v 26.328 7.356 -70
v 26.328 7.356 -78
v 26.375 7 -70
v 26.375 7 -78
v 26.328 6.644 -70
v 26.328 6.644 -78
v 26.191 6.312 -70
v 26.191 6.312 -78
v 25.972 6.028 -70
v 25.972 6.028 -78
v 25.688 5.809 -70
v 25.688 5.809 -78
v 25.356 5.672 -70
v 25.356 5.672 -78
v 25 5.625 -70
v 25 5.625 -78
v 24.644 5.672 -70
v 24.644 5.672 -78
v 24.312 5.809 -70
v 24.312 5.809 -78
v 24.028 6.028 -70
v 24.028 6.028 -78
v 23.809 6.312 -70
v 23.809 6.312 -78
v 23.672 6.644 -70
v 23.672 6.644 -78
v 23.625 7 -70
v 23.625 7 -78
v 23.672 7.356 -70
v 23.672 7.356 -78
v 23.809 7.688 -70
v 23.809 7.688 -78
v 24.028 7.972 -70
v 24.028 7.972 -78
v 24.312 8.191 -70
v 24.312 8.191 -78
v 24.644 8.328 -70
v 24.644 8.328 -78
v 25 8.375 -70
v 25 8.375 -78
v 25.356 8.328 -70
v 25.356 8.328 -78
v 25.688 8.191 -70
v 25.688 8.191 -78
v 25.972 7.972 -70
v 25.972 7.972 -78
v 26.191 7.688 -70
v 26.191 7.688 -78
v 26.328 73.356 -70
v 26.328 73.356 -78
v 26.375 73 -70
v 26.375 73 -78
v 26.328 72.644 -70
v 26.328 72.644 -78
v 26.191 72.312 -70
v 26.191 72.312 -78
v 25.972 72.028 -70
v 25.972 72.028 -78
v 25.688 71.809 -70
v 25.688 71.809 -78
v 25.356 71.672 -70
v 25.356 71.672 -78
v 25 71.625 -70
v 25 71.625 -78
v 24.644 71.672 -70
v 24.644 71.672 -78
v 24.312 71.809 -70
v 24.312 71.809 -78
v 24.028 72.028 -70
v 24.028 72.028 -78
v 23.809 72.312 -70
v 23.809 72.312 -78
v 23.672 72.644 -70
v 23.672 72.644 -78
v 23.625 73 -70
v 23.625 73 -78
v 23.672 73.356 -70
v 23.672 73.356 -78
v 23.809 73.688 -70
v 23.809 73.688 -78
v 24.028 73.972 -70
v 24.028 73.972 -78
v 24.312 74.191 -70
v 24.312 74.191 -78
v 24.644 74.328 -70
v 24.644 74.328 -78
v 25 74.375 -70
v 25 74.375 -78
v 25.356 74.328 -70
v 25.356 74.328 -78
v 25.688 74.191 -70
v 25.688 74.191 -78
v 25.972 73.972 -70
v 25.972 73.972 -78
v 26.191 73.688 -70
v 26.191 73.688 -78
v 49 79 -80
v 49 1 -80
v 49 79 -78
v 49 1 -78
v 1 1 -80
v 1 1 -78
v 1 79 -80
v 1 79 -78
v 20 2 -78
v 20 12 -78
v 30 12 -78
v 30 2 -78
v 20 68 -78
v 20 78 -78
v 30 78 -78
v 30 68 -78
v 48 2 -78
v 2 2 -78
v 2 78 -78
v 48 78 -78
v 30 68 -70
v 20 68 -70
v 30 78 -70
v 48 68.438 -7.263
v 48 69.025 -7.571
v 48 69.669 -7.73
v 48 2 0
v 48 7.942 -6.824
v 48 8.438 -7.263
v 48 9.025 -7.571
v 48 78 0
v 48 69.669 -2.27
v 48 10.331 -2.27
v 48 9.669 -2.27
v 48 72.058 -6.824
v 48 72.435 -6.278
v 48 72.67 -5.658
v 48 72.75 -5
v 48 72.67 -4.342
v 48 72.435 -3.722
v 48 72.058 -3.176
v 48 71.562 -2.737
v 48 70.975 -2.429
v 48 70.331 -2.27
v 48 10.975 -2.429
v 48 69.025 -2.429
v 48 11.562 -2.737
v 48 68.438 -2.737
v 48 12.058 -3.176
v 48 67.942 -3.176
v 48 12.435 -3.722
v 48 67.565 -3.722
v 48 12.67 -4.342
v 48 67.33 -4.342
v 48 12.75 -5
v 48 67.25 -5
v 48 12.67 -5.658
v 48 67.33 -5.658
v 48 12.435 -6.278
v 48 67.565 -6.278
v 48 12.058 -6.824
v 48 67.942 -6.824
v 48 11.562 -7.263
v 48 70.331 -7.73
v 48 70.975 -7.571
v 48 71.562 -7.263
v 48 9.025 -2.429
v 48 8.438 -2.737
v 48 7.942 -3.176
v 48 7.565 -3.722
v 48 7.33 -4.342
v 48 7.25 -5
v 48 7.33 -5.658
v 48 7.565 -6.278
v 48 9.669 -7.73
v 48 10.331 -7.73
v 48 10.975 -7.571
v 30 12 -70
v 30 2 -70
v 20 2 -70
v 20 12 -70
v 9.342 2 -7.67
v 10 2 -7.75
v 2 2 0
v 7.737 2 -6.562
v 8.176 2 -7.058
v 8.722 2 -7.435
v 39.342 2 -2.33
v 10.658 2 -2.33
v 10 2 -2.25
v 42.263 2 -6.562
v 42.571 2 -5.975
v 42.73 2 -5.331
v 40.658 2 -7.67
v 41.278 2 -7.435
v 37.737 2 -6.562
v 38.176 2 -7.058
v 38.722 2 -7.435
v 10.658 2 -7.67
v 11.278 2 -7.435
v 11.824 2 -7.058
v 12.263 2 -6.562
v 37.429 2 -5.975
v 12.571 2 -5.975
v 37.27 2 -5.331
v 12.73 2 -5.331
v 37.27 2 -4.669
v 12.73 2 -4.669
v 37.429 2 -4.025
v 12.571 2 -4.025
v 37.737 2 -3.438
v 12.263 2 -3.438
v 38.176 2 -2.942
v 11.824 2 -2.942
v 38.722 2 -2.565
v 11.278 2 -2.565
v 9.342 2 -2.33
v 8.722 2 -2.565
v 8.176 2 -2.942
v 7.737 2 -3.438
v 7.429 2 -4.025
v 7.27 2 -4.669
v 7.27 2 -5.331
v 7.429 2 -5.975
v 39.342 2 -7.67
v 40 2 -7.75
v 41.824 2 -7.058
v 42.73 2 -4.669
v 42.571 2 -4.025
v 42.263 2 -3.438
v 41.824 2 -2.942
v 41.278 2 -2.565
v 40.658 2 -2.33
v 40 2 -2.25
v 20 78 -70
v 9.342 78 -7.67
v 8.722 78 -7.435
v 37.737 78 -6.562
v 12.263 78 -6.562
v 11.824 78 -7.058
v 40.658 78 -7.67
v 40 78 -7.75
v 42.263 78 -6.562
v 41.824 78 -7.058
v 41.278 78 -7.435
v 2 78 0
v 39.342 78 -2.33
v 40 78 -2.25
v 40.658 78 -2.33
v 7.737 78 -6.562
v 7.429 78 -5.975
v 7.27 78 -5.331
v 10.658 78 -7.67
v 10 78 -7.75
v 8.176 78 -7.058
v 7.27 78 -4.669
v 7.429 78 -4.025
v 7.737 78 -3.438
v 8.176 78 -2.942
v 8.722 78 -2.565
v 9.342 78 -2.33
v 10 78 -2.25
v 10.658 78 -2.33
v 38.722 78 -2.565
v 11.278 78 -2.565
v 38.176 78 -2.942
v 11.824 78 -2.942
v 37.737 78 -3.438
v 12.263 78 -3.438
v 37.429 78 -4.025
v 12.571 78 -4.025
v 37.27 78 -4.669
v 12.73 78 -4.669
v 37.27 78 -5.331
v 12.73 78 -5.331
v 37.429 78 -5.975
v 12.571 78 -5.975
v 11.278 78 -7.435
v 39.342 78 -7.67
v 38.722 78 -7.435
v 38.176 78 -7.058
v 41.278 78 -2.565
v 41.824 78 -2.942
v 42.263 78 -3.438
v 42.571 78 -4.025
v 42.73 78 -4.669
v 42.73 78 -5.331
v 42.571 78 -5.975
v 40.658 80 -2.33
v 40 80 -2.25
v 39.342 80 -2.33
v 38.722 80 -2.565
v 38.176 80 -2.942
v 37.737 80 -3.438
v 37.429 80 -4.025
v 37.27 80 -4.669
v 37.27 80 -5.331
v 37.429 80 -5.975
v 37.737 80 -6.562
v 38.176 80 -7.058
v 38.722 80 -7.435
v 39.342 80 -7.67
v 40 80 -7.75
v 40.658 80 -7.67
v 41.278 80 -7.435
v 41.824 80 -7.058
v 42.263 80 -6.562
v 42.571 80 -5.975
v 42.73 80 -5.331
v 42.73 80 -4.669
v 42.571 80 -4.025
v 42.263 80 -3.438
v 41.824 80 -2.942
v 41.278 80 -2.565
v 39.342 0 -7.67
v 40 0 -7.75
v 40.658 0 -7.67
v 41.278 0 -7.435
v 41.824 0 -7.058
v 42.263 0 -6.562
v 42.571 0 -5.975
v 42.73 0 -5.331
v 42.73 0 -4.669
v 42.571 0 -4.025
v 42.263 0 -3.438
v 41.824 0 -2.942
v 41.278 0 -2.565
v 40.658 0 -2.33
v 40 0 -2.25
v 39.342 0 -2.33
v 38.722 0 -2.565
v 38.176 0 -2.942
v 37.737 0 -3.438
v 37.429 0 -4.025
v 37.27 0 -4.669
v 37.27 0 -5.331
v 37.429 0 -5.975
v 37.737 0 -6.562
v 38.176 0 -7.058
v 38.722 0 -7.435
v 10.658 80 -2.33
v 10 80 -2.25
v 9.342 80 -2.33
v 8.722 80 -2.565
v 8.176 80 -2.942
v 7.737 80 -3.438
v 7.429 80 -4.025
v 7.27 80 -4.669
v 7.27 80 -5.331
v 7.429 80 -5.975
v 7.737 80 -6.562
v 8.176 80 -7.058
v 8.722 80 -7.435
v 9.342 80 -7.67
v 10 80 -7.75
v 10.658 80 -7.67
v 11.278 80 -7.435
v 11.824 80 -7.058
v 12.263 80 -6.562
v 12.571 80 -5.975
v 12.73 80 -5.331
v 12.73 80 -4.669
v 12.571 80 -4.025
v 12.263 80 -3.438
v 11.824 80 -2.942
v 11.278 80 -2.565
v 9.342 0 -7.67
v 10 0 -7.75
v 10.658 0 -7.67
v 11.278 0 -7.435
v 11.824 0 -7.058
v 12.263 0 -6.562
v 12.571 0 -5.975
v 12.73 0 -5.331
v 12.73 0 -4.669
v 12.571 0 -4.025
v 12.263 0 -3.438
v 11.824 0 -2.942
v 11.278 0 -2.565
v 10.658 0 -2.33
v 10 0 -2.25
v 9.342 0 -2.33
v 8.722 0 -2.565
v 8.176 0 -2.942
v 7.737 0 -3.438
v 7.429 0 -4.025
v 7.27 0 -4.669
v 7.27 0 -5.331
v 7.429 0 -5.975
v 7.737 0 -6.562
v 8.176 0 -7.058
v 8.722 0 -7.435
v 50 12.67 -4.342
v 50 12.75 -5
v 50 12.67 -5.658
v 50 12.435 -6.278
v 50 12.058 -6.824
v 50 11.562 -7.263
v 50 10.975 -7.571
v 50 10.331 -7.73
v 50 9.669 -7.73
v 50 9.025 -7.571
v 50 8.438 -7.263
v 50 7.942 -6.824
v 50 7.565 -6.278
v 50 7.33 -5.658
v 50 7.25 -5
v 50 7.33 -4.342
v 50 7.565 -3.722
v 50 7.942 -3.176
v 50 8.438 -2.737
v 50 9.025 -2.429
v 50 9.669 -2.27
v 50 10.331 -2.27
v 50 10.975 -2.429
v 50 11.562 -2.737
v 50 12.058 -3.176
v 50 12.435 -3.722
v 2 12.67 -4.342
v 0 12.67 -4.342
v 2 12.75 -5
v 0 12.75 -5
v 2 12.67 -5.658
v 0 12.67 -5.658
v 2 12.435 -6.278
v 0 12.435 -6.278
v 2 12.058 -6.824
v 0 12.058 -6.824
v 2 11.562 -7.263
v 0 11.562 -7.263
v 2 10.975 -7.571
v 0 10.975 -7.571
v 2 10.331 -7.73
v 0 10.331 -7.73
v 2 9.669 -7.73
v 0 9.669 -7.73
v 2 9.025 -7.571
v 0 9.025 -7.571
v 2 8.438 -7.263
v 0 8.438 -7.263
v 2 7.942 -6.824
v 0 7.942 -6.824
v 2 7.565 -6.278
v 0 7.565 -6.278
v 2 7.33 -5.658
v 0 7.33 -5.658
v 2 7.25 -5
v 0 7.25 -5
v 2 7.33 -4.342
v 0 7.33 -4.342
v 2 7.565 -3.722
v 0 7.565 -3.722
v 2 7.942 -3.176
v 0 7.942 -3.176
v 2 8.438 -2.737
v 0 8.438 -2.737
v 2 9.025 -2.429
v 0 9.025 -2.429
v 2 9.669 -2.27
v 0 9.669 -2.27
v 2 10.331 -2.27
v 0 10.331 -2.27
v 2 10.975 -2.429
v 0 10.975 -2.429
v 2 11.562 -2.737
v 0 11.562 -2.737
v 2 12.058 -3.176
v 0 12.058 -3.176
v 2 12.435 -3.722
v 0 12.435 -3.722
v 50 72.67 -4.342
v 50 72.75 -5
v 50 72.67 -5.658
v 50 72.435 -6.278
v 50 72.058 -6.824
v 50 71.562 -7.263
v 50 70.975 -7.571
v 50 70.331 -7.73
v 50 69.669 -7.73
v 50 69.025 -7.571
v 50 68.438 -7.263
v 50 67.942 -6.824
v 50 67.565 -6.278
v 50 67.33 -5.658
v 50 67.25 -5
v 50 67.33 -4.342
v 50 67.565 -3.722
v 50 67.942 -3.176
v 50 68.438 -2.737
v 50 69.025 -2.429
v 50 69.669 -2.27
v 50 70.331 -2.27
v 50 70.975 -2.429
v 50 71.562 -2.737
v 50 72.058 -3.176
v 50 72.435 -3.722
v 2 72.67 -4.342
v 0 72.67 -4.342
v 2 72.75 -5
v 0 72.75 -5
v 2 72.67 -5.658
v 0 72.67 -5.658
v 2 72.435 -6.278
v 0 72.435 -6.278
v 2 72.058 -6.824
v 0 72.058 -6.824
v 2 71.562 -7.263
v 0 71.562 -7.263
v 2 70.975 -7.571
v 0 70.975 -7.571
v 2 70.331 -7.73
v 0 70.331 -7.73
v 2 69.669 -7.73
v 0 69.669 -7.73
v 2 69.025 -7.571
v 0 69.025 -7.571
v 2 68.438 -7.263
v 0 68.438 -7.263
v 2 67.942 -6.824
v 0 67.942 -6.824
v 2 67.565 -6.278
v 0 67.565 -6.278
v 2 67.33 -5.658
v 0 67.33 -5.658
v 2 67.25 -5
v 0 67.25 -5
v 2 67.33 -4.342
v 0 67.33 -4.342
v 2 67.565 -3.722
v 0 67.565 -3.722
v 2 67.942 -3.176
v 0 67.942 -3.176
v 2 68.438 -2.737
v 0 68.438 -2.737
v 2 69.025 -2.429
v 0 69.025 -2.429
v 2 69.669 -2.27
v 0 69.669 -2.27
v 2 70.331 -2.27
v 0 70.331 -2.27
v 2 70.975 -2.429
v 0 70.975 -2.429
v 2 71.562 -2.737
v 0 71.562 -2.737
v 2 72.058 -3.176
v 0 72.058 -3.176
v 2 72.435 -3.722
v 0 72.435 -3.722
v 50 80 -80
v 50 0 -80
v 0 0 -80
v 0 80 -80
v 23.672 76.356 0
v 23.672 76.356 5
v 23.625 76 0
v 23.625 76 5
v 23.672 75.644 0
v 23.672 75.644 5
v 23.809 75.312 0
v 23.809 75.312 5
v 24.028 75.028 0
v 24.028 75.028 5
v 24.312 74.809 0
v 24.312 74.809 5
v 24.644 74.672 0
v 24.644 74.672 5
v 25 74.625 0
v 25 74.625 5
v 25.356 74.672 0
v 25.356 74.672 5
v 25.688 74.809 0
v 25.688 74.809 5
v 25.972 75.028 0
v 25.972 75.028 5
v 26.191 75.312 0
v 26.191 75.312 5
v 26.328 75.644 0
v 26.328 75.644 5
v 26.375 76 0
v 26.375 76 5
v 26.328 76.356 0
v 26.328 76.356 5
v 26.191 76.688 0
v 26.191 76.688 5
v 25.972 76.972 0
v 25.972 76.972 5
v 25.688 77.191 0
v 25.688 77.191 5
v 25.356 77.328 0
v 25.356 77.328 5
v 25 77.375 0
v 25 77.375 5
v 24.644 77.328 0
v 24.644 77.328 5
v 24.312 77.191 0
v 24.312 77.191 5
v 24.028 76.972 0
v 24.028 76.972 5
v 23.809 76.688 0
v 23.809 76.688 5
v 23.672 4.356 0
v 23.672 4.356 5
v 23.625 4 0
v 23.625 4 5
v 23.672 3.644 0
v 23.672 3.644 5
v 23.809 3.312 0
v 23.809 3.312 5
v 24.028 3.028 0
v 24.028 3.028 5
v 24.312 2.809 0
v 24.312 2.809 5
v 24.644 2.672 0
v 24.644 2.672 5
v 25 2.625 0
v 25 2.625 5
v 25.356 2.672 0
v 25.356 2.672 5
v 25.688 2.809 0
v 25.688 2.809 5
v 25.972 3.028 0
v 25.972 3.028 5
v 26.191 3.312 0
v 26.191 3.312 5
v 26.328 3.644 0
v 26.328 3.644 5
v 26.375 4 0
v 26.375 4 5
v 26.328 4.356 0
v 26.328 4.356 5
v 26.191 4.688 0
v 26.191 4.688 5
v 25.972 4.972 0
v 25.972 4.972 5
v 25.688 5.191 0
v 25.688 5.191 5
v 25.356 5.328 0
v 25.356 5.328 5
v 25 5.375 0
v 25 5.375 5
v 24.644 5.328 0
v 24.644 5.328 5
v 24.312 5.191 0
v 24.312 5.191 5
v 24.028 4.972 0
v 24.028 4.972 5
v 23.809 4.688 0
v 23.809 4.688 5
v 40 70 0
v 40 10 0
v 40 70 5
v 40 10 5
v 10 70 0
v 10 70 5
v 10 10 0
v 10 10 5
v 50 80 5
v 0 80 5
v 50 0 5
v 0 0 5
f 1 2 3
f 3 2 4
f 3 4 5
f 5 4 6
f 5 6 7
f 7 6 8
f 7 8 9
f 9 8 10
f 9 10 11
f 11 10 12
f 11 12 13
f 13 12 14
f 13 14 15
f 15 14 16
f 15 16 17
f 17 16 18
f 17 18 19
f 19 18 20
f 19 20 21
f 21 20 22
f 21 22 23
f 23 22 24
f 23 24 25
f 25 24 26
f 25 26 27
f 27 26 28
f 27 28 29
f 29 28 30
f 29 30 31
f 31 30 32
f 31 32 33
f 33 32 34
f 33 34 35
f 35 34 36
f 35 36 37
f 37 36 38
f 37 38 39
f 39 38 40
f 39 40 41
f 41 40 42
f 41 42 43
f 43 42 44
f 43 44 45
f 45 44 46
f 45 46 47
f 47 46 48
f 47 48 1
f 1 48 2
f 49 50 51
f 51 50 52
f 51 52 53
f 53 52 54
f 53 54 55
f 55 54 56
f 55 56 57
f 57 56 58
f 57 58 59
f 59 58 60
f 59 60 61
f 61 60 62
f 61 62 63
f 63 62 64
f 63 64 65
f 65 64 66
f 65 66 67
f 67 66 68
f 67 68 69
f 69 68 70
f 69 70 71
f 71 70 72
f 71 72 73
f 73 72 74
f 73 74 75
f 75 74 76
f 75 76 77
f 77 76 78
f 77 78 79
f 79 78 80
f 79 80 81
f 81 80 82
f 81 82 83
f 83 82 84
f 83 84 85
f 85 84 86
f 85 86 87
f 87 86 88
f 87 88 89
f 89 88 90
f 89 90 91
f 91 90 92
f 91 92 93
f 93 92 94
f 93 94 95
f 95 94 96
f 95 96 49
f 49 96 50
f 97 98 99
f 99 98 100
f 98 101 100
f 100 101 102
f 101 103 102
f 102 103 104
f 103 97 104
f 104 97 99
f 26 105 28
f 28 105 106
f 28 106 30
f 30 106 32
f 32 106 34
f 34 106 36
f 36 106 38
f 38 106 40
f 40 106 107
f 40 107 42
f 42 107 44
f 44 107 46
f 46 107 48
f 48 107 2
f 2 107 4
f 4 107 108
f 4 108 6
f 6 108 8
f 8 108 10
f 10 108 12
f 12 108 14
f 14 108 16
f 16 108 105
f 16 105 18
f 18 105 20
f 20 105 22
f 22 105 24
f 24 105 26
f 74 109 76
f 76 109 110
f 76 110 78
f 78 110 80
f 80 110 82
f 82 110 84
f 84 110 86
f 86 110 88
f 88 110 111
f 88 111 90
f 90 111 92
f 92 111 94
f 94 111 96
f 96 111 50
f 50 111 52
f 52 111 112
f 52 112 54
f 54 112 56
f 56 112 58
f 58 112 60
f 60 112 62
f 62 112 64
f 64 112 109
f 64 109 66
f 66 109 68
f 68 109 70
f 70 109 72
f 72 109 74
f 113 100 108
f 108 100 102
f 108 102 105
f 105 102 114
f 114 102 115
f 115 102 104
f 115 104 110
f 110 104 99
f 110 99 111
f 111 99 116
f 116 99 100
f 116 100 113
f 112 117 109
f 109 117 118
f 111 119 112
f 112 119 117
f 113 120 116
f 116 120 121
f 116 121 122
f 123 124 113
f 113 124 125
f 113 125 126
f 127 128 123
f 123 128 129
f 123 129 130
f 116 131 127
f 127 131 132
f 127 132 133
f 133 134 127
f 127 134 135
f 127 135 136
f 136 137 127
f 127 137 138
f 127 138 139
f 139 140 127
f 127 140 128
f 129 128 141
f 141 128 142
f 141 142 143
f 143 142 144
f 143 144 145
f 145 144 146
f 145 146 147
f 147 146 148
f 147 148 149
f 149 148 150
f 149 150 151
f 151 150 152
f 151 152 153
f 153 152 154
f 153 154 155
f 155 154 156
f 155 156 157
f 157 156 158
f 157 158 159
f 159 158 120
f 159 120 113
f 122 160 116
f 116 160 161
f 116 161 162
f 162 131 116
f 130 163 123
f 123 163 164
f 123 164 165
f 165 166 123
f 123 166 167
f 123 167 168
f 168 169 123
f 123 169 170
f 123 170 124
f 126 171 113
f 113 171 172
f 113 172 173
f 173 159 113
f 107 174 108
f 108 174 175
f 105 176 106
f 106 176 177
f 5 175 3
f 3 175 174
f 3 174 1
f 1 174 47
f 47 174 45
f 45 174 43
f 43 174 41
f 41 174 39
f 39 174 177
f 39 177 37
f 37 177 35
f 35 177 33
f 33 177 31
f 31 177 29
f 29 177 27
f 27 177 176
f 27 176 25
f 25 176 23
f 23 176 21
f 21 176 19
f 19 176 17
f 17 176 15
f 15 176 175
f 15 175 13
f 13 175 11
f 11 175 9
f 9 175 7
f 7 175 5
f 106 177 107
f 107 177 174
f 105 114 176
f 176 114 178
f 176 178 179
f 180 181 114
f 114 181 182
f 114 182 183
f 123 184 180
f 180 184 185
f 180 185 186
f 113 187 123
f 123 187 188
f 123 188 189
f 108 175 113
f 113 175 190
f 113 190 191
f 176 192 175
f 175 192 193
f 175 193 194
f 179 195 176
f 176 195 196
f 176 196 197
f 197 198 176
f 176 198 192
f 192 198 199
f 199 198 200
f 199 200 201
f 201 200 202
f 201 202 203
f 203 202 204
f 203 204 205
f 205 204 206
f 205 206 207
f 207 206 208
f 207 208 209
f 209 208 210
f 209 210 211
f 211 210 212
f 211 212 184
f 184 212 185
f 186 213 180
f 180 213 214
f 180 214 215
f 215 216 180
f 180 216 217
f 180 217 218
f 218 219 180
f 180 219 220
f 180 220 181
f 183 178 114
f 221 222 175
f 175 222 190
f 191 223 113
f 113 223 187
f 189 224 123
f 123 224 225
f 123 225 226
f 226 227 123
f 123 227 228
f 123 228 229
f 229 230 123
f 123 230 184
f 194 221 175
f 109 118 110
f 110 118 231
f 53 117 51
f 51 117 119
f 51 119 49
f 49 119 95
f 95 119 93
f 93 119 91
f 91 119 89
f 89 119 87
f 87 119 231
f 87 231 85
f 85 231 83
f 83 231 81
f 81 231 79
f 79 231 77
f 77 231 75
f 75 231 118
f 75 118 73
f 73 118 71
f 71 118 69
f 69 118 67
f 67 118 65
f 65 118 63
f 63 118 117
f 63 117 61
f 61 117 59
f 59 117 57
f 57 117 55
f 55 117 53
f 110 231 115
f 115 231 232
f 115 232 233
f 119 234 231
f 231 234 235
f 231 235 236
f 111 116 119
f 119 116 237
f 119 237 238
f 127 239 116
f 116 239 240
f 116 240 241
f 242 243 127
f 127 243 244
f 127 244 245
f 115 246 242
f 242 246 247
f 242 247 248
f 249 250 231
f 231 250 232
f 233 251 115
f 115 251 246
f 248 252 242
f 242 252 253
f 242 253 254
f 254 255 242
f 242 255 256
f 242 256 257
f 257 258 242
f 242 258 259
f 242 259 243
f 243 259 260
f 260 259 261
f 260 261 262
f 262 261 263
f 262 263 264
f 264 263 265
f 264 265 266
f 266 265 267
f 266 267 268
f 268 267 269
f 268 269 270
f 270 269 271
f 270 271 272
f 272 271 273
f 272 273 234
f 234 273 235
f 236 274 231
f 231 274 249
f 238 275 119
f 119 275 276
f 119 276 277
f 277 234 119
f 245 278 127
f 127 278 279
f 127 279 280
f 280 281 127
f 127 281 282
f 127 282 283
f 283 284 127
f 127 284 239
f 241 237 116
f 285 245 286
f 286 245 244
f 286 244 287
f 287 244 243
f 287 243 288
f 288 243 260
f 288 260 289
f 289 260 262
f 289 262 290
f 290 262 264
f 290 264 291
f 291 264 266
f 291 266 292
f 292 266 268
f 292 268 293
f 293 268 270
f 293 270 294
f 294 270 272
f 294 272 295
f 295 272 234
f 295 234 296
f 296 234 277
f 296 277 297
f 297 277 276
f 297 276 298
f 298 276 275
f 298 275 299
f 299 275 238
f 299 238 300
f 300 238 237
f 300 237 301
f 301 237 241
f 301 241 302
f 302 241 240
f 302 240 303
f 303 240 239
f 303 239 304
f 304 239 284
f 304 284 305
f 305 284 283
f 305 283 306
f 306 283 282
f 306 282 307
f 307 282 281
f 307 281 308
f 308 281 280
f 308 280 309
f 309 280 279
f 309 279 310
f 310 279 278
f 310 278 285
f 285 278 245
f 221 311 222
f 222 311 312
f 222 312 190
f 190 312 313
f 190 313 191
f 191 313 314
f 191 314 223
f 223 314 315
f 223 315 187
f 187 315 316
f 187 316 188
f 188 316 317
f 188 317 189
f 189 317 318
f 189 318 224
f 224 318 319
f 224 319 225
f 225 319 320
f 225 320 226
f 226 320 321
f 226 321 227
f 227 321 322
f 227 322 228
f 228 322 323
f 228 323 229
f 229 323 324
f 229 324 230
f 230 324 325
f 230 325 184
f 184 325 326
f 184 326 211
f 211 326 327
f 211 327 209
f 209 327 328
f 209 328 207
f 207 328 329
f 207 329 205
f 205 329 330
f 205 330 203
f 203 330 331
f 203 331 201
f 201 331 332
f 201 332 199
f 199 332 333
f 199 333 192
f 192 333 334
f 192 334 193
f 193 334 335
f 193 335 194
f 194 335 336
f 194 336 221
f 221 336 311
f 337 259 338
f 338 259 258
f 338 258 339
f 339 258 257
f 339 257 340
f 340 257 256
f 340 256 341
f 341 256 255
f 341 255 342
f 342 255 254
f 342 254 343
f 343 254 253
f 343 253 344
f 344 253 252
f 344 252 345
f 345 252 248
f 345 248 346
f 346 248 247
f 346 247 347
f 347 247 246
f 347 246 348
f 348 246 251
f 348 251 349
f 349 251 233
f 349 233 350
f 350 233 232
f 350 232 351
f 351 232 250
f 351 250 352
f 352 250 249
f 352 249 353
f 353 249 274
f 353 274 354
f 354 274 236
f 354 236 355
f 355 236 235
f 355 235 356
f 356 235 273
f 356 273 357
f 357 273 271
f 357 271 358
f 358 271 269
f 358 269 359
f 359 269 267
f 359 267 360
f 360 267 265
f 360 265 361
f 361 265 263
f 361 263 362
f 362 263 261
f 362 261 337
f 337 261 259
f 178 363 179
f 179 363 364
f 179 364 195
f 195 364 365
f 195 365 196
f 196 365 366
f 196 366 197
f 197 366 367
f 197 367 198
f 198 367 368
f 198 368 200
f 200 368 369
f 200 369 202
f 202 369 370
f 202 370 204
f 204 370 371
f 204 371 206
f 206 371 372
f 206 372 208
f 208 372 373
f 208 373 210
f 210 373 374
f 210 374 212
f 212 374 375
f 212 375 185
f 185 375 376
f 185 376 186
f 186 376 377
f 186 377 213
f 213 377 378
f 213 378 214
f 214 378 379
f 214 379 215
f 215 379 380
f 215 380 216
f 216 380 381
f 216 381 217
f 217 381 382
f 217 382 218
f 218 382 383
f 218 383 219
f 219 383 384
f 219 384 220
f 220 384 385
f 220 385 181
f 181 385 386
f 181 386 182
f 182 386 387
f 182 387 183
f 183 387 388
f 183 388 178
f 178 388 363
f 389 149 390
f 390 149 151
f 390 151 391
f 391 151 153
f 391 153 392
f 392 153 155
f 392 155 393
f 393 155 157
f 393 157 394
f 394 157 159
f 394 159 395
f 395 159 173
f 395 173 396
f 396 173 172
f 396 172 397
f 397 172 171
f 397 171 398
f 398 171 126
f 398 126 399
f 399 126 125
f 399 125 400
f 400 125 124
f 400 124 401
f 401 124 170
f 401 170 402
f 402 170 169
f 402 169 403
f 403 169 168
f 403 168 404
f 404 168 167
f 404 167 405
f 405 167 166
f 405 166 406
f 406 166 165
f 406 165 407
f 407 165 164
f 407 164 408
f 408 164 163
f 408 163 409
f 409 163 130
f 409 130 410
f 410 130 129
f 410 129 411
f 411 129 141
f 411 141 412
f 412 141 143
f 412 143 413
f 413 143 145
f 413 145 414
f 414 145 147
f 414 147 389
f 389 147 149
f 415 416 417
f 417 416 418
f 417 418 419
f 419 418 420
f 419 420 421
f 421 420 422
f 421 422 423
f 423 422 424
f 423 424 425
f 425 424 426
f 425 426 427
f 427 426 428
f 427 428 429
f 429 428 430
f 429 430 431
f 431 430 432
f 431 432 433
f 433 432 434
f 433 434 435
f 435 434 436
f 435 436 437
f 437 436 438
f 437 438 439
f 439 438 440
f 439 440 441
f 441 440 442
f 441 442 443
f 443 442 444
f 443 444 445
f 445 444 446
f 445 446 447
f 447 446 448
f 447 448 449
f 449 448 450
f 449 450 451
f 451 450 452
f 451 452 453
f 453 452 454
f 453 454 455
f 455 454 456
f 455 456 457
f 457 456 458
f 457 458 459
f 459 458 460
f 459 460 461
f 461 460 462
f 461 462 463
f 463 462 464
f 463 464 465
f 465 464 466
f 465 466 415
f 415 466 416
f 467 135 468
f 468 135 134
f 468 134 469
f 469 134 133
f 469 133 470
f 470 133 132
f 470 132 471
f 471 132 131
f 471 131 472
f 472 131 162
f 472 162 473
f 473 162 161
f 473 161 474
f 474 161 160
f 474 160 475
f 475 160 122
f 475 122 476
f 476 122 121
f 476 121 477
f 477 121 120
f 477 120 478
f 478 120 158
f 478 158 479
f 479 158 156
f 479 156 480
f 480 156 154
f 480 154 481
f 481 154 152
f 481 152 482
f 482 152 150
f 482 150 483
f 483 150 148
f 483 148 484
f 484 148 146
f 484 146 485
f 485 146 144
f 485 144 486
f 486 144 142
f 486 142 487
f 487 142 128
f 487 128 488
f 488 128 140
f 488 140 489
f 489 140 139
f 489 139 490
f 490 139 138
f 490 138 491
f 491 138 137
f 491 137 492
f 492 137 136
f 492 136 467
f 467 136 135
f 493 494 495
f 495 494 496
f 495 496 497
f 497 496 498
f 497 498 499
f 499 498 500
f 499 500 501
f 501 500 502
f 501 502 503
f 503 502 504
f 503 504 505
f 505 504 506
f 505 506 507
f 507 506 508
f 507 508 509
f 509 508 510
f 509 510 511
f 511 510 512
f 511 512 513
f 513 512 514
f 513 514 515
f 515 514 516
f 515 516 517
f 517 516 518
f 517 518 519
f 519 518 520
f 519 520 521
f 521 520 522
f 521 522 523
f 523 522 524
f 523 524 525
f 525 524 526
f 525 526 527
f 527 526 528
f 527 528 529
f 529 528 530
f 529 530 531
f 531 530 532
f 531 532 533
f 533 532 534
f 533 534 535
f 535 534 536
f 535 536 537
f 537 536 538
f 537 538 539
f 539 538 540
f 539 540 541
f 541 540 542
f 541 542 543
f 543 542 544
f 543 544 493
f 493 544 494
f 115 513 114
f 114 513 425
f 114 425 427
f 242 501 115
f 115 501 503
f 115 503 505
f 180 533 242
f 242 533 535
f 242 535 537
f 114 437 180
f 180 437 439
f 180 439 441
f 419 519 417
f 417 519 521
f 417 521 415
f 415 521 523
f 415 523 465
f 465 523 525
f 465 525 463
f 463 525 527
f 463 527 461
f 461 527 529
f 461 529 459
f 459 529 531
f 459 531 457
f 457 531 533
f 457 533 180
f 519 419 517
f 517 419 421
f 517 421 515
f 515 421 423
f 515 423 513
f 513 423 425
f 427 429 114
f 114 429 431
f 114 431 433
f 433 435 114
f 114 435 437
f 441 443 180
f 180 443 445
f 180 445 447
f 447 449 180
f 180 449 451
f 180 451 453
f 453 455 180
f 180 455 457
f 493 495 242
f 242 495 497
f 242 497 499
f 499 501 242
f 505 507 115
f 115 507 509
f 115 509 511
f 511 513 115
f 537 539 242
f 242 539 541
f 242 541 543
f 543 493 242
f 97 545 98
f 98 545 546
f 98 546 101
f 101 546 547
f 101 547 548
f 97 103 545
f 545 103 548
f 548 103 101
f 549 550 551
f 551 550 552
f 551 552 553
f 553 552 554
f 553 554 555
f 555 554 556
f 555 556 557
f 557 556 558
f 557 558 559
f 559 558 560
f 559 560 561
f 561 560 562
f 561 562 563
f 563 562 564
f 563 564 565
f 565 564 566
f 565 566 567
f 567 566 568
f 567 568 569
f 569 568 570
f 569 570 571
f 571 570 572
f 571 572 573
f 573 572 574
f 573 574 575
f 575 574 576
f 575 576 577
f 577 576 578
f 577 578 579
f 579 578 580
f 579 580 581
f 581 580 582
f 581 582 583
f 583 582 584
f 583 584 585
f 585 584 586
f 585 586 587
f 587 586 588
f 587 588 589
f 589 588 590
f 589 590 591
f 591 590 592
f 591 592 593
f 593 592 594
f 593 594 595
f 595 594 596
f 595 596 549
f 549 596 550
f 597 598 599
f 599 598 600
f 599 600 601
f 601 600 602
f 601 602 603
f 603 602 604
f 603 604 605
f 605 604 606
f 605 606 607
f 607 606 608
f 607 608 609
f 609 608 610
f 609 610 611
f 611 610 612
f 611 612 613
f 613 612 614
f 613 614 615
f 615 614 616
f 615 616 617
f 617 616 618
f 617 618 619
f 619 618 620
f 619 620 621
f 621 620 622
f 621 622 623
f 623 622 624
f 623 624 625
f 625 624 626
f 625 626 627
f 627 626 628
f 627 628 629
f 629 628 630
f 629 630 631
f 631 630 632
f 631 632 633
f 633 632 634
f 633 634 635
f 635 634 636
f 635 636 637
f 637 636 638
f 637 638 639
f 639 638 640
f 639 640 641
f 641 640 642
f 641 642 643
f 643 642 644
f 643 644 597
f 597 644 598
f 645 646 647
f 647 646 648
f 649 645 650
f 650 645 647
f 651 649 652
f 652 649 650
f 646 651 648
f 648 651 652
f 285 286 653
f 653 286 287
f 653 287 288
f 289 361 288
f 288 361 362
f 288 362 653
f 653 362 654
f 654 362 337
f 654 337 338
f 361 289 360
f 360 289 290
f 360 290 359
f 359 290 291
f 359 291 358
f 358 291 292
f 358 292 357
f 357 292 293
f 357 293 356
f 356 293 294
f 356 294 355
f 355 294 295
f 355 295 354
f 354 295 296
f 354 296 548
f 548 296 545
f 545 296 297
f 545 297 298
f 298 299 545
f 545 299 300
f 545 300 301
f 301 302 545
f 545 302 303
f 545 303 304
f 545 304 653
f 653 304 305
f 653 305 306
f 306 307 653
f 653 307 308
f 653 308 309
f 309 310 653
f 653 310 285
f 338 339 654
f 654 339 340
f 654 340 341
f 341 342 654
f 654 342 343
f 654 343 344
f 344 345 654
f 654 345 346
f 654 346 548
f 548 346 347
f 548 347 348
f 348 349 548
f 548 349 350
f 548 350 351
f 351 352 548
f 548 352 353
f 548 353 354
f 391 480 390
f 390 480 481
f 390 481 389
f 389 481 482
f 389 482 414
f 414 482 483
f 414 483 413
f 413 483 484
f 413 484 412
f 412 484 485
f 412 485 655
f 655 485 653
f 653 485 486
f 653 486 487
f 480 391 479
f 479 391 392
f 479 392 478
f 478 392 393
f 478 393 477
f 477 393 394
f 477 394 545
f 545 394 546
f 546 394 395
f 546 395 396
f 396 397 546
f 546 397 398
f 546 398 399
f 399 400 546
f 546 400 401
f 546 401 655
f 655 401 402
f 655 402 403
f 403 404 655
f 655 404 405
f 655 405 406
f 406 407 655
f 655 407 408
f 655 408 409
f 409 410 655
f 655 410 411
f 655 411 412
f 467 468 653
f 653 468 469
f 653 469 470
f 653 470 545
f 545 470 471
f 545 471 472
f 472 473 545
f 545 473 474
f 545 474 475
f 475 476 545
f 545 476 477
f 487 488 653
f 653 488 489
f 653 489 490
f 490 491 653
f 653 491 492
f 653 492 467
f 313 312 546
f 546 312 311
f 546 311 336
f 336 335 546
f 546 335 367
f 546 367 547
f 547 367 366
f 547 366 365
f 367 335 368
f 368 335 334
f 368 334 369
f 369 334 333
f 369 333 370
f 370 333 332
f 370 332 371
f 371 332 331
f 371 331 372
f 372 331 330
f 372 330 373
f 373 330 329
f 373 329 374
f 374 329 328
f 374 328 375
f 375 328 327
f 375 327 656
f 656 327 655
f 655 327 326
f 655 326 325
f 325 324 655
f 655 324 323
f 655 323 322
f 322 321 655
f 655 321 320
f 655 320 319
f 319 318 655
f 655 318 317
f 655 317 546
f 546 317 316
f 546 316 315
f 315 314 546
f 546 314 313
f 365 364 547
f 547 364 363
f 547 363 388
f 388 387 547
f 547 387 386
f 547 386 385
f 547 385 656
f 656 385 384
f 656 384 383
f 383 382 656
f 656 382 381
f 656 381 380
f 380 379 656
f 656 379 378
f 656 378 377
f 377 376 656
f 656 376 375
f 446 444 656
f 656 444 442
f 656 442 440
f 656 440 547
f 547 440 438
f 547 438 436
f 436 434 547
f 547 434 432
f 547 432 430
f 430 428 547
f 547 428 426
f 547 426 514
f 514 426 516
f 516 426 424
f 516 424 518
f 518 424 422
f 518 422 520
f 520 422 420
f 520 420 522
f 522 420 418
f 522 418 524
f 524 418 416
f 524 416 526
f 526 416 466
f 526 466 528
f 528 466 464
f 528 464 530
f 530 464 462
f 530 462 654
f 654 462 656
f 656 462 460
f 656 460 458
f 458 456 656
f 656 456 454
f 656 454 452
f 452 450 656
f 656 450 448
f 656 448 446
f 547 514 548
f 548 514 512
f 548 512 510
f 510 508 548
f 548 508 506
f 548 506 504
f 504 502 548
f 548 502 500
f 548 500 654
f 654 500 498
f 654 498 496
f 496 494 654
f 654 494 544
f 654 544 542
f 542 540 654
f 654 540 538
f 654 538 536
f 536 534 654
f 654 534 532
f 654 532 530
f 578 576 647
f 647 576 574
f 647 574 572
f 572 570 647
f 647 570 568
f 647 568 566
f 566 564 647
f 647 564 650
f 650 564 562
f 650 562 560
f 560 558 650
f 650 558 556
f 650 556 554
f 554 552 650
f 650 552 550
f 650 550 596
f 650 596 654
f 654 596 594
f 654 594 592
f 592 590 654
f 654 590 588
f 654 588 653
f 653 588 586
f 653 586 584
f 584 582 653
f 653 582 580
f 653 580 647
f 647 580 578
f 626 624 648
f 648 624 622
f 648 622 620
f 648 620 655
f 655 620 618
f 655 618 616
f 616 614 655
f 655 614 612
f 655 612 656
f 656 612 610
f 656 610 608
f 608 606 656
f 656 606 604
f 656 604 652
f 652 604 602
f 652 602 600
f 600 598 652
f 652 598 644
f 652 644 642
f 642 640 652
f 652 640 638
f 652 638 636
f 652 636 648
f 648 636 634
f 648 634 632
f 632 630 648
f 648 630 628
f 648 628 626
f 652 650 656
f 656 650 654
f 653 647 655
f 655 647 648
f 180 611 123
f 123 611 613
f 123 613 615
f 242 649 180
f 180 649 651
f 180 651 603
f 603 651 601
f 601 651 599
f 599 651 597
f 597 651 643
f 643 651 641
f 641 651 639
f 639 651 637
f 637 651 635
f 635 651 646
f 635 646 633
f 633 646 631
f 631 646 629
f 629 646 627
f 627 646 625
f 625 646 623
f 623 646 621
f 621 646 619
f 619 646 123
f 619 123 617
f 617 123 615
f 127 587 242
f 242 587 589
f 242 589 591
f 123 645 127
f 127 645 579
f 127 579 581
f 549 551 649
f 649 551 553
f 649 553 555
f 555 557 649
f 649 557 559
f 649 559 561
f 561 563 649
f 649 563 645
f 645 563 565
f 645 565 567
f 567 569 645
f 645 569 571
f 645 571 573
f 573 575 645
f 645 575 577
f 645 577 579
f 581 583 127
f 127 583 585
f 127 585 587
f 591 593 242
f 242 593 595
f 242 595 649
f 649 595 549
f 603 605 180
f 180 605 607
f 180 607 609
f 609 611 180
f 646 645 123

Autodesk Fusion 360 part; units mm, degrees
sketch "Sketch1" plane through (0, 0, 0) normal (0, 0, 1) x (1, 0, 0)
  line L0 (0, 0) -> (50, 0)
  line L1 (50, 0) -> (50, 80)
  line L2 (50, 80) -> (0, 80)
  line L3 (0, 80) -> (0, 0)
  dimension "d1" = 50
  dimension "d2" = 80
extrude "Extrude1" add sketch "Sketch1" along normal blind 5
sketch "Sketch2" plane through (0, 0, 5) normal (0, 0, 1) x (-1, 0, 0)
  line L0 (0, -80) -> (0, 0)
  line L1 (0, 0) -> (-50, 0)
  line L2 (-50, 0) -> (-50, -80)
  line L3 (-50, -80) -> (0, -80)
  line L4 (-40, -10) -> (-10, -10)
  line L5 (-10, -10) -> (-10, -70)
  line L6 (-10, -70) -> (-40, -70)
  line L7 (-40, -70) -> (-40, -10)
  line L8 (-40, -10) -> (-10, -70) construction
  line L9 (-10, -10) -> (-40, -70) construction
  point P0 (-25, -40)
  point P1 (-25, -40)
  dimension "d5" = 30
  dimension "d6" = 60
extrude "Extrude2" cut sketch "Sketch2" against normal blind 6 contours L4 L5 L6 L7
sketch "Sketch3" plane through (0, 0, 5) normal (0, 0, 1) x (-1, 0, 0)
  line L0 (-10, -10) -> (-10, -70)
  line L1 (-10, -70) -> (-40, -70)
  line L2 (-40, -70) -> (-40, -10)
  line L3 (-40, -10) -> (-10, -10)
  line L4 (0, -80) -> (0, 0)
  line L5 (0, 0) -> (-50, 0)
  line L6 (-50, 0) -> (-50, -80)
  line L7 (-50, -80) -> (0, -80)
  point P0 (-25, -76)
  point P1 (-25, -4)
hole "Hole1" at (25, 76, 5) at (25, 4, 5) direction (0, 0, -1) diameter 2.75 depth 15 tip angle 118
sketch "Sketch4" plane through (0, 0, 0) normal (0, 0, -1) x (1, 0, 0)
  circle A0 centre (25, -76) radius 1.375
  circle A1 centre (25, -4) radius 1.375
  line L0 (10, -70) -> (10, -10)
  line L1 (10, -10) -> (40, -10)
  line L2 (40, -10) -> (40, -70)
  line L3 (40, -70) -> (10, -70)
  line L4 (0, 0) -> (0, -80)
  line L5 (0, -80) -> (50, -80)
  line L6 (50, -80) -> (50, 0)
  line L7 (50, 0) -> (0, 0)
  line L8 (48, -2) -> (2, -2)
  line L9 (2, -2) -> (2, -78)
  line L10 (2, -78) -> (48, -78)
  line L11 (48, -78) -> (48, -2)
extrude "Extrude3" add sketch "Sketch4" along normal blind 80 contours L4 L5 L6 L7
sketch "Sketch5" plane through (0, 0, 0) normal (-1, 0, 0) x (0, -1, 0)
  line L0 (0, -80) -> (0, 5)
  line L1 (0, 5) -> (-80, 5)
  line L2 (-80, 5) -> (-80, -80)
  line L3 (-80, -80) -> (0, -80)
  point P0 (-10, -5)
  point P1 (-70, -5)
hole "Hole2" at (0, 10, -5) at (0, 70, -5) direction (1, 0, 0) diameter 5.5 depth 100 tip angle 118
sketch "Sketch6" plane through (0, 80, 0) normal (0, 1, 0) x (-1, 0, 0)
  line L0 (0, -80) -> (0, 5)
  line L1 (0, 5) -> (-50, 5)
  line L2 (-50, 5) -> (-50, -80)
  line L3 (-50, -80) -> (0, -80)
  point P0 (-10, -5)
  point P1 (-40, -5)
hole "Hole3" at (40, 80, -5) at (10, 80, -5) direction (0, -1, 0) diameter 5.5 depth 100 tip angle 118
sketch "Sketch7" plane through (0, 78, 0) normal (0, -1, 0) x (1, 0, 0)
  circle A0 centre (40, -5) radius 2.75
  circle A1 centre (10, -5) radius 2.75
  line L0 (48, 0) -> (2, 0)
  line L1 (2, 0) -> (2, -80)
  line L2 (2, -80) -> (48, -80)
  line L3 (48, -80) -> (48, 0)
  line L4 (30, -80) -> (20, -80)
  line L5 (20, -80) -> (20, -70)
  line L6 (20, -70) -> (30, -70)
  line L7 (30, -70) -> (30, -80)
  dimension "d20" = 10
  dimension "d21" = 10
extrude "Extrude4" add sketch "Sketch7" along normal blind 10 contours L2 L4 L5 L6 L7
sketch "Sketch8" plane through (0, 2, 0) normal (0, 1, 0) x (-1, 0, 0)
  circle A0 centre (-40, -5) radius 2.75
  circle A1 centre (-10, -5) radius 2.75
  line L0 (-2, 0) -> (-48, 0)
  line L1 (-48, 0) -> (-48, -80)
  line L2 (-48, -80) -> (-2, -80)
  line L3 (-2, -80) -> (-2, 0)
  line L4 (-20, -80) -> (-30, -80)
  line L5 (-30, -80) -> (-30, -70)
  line L6 (-30, -70) -> (-20, -70)
  line L7 (-20, -70) -> (-20, -80)
  dimension "d24" = 10
  dimension "d25" = 10
extrude "Extrude5" add sketch "Sketch8" along normal blind 10 contours L2 L4 L5 L6 L7
sketch "Sketch9" plane through (0, 0, -80) normal (0, 0, -1) x (1, 0, 0)
  line L0 (48, -2) -> (48, -78)
  line L1 (48, -78) -> (30, -78)
  line L2 (30, -78) -> (30, -68)
  line L3 (30, -68) -> (20, -68)
  line L4 (20, -68) -> (20, -78)
  line L5 (20, -78) -> (2, -78)
  line L6 (2, -78) -> (2, -2)
  line L7 (2, -2) -> (20, -2)
  line L8 (20, -2) -> (20, -12)
  line L9 (20, -12) -> (30, -12)
  line L10 (30, -12) -> (30, -2)
  line L11 (30, -2) -> (48, -2)
  line L12 (50, 0) -> (0, 0)
  line L13 (0, 0) -> (0, -80)
  line L14 (0, -80) -> (50, -80)
  line L15 (50, -80) -> (50, 0)
  line L16 (1, -1) -> (49, -1)
  line L17 (49, -1) -> (49, -79)
  line L18 (49, -79) -> (1, -79)
  line L19 (1, -79) -> (1, -1)
extrude "Extrude6" cut sketch "Sketch9" against normal blind 2 contours L16 L17 L18 L19
sketch "Sketch10" plane through (0, 0, -78) normal (0, 0, -1) x (1, 0, 0)
  line L0 (30, -12) -> (30, -2)
  line L1 (30, -2) -> (48, -2)
  line L2 (48, -2) -> (48, -78)
  line L3 (48, -78) -> (30, -78)
  line L4 (30, -78) -> (30, -68)
  line L5 (30, -68) -> (20, -68)
  line L6 (20, -68) -> (20, -78)
  line L7 (20, -78) -> (2, -78)
  line L8 (2, -78) -> (2, -2)
  line L9 (2, -2) -> (20, -2)
  line L10 (20, -2) -> (20, -12)
  line L11 (20, -12) -> (30, -12)
  line L12 (1, -79) -> (49, -79)
  line L13 (49, -79) -> (49, -1)
  line L14 (49, -1) -> (1, -1)
  line L15 (1, -1) -> (1, -79)
  point P0 (25, -7)
  point P1 (25, -73)
hole "Hole4" at (25, 7, -78) at (25, 73, -78) direction (0, 0, 1) diameter 2.75 depth 11 tip angle 180
